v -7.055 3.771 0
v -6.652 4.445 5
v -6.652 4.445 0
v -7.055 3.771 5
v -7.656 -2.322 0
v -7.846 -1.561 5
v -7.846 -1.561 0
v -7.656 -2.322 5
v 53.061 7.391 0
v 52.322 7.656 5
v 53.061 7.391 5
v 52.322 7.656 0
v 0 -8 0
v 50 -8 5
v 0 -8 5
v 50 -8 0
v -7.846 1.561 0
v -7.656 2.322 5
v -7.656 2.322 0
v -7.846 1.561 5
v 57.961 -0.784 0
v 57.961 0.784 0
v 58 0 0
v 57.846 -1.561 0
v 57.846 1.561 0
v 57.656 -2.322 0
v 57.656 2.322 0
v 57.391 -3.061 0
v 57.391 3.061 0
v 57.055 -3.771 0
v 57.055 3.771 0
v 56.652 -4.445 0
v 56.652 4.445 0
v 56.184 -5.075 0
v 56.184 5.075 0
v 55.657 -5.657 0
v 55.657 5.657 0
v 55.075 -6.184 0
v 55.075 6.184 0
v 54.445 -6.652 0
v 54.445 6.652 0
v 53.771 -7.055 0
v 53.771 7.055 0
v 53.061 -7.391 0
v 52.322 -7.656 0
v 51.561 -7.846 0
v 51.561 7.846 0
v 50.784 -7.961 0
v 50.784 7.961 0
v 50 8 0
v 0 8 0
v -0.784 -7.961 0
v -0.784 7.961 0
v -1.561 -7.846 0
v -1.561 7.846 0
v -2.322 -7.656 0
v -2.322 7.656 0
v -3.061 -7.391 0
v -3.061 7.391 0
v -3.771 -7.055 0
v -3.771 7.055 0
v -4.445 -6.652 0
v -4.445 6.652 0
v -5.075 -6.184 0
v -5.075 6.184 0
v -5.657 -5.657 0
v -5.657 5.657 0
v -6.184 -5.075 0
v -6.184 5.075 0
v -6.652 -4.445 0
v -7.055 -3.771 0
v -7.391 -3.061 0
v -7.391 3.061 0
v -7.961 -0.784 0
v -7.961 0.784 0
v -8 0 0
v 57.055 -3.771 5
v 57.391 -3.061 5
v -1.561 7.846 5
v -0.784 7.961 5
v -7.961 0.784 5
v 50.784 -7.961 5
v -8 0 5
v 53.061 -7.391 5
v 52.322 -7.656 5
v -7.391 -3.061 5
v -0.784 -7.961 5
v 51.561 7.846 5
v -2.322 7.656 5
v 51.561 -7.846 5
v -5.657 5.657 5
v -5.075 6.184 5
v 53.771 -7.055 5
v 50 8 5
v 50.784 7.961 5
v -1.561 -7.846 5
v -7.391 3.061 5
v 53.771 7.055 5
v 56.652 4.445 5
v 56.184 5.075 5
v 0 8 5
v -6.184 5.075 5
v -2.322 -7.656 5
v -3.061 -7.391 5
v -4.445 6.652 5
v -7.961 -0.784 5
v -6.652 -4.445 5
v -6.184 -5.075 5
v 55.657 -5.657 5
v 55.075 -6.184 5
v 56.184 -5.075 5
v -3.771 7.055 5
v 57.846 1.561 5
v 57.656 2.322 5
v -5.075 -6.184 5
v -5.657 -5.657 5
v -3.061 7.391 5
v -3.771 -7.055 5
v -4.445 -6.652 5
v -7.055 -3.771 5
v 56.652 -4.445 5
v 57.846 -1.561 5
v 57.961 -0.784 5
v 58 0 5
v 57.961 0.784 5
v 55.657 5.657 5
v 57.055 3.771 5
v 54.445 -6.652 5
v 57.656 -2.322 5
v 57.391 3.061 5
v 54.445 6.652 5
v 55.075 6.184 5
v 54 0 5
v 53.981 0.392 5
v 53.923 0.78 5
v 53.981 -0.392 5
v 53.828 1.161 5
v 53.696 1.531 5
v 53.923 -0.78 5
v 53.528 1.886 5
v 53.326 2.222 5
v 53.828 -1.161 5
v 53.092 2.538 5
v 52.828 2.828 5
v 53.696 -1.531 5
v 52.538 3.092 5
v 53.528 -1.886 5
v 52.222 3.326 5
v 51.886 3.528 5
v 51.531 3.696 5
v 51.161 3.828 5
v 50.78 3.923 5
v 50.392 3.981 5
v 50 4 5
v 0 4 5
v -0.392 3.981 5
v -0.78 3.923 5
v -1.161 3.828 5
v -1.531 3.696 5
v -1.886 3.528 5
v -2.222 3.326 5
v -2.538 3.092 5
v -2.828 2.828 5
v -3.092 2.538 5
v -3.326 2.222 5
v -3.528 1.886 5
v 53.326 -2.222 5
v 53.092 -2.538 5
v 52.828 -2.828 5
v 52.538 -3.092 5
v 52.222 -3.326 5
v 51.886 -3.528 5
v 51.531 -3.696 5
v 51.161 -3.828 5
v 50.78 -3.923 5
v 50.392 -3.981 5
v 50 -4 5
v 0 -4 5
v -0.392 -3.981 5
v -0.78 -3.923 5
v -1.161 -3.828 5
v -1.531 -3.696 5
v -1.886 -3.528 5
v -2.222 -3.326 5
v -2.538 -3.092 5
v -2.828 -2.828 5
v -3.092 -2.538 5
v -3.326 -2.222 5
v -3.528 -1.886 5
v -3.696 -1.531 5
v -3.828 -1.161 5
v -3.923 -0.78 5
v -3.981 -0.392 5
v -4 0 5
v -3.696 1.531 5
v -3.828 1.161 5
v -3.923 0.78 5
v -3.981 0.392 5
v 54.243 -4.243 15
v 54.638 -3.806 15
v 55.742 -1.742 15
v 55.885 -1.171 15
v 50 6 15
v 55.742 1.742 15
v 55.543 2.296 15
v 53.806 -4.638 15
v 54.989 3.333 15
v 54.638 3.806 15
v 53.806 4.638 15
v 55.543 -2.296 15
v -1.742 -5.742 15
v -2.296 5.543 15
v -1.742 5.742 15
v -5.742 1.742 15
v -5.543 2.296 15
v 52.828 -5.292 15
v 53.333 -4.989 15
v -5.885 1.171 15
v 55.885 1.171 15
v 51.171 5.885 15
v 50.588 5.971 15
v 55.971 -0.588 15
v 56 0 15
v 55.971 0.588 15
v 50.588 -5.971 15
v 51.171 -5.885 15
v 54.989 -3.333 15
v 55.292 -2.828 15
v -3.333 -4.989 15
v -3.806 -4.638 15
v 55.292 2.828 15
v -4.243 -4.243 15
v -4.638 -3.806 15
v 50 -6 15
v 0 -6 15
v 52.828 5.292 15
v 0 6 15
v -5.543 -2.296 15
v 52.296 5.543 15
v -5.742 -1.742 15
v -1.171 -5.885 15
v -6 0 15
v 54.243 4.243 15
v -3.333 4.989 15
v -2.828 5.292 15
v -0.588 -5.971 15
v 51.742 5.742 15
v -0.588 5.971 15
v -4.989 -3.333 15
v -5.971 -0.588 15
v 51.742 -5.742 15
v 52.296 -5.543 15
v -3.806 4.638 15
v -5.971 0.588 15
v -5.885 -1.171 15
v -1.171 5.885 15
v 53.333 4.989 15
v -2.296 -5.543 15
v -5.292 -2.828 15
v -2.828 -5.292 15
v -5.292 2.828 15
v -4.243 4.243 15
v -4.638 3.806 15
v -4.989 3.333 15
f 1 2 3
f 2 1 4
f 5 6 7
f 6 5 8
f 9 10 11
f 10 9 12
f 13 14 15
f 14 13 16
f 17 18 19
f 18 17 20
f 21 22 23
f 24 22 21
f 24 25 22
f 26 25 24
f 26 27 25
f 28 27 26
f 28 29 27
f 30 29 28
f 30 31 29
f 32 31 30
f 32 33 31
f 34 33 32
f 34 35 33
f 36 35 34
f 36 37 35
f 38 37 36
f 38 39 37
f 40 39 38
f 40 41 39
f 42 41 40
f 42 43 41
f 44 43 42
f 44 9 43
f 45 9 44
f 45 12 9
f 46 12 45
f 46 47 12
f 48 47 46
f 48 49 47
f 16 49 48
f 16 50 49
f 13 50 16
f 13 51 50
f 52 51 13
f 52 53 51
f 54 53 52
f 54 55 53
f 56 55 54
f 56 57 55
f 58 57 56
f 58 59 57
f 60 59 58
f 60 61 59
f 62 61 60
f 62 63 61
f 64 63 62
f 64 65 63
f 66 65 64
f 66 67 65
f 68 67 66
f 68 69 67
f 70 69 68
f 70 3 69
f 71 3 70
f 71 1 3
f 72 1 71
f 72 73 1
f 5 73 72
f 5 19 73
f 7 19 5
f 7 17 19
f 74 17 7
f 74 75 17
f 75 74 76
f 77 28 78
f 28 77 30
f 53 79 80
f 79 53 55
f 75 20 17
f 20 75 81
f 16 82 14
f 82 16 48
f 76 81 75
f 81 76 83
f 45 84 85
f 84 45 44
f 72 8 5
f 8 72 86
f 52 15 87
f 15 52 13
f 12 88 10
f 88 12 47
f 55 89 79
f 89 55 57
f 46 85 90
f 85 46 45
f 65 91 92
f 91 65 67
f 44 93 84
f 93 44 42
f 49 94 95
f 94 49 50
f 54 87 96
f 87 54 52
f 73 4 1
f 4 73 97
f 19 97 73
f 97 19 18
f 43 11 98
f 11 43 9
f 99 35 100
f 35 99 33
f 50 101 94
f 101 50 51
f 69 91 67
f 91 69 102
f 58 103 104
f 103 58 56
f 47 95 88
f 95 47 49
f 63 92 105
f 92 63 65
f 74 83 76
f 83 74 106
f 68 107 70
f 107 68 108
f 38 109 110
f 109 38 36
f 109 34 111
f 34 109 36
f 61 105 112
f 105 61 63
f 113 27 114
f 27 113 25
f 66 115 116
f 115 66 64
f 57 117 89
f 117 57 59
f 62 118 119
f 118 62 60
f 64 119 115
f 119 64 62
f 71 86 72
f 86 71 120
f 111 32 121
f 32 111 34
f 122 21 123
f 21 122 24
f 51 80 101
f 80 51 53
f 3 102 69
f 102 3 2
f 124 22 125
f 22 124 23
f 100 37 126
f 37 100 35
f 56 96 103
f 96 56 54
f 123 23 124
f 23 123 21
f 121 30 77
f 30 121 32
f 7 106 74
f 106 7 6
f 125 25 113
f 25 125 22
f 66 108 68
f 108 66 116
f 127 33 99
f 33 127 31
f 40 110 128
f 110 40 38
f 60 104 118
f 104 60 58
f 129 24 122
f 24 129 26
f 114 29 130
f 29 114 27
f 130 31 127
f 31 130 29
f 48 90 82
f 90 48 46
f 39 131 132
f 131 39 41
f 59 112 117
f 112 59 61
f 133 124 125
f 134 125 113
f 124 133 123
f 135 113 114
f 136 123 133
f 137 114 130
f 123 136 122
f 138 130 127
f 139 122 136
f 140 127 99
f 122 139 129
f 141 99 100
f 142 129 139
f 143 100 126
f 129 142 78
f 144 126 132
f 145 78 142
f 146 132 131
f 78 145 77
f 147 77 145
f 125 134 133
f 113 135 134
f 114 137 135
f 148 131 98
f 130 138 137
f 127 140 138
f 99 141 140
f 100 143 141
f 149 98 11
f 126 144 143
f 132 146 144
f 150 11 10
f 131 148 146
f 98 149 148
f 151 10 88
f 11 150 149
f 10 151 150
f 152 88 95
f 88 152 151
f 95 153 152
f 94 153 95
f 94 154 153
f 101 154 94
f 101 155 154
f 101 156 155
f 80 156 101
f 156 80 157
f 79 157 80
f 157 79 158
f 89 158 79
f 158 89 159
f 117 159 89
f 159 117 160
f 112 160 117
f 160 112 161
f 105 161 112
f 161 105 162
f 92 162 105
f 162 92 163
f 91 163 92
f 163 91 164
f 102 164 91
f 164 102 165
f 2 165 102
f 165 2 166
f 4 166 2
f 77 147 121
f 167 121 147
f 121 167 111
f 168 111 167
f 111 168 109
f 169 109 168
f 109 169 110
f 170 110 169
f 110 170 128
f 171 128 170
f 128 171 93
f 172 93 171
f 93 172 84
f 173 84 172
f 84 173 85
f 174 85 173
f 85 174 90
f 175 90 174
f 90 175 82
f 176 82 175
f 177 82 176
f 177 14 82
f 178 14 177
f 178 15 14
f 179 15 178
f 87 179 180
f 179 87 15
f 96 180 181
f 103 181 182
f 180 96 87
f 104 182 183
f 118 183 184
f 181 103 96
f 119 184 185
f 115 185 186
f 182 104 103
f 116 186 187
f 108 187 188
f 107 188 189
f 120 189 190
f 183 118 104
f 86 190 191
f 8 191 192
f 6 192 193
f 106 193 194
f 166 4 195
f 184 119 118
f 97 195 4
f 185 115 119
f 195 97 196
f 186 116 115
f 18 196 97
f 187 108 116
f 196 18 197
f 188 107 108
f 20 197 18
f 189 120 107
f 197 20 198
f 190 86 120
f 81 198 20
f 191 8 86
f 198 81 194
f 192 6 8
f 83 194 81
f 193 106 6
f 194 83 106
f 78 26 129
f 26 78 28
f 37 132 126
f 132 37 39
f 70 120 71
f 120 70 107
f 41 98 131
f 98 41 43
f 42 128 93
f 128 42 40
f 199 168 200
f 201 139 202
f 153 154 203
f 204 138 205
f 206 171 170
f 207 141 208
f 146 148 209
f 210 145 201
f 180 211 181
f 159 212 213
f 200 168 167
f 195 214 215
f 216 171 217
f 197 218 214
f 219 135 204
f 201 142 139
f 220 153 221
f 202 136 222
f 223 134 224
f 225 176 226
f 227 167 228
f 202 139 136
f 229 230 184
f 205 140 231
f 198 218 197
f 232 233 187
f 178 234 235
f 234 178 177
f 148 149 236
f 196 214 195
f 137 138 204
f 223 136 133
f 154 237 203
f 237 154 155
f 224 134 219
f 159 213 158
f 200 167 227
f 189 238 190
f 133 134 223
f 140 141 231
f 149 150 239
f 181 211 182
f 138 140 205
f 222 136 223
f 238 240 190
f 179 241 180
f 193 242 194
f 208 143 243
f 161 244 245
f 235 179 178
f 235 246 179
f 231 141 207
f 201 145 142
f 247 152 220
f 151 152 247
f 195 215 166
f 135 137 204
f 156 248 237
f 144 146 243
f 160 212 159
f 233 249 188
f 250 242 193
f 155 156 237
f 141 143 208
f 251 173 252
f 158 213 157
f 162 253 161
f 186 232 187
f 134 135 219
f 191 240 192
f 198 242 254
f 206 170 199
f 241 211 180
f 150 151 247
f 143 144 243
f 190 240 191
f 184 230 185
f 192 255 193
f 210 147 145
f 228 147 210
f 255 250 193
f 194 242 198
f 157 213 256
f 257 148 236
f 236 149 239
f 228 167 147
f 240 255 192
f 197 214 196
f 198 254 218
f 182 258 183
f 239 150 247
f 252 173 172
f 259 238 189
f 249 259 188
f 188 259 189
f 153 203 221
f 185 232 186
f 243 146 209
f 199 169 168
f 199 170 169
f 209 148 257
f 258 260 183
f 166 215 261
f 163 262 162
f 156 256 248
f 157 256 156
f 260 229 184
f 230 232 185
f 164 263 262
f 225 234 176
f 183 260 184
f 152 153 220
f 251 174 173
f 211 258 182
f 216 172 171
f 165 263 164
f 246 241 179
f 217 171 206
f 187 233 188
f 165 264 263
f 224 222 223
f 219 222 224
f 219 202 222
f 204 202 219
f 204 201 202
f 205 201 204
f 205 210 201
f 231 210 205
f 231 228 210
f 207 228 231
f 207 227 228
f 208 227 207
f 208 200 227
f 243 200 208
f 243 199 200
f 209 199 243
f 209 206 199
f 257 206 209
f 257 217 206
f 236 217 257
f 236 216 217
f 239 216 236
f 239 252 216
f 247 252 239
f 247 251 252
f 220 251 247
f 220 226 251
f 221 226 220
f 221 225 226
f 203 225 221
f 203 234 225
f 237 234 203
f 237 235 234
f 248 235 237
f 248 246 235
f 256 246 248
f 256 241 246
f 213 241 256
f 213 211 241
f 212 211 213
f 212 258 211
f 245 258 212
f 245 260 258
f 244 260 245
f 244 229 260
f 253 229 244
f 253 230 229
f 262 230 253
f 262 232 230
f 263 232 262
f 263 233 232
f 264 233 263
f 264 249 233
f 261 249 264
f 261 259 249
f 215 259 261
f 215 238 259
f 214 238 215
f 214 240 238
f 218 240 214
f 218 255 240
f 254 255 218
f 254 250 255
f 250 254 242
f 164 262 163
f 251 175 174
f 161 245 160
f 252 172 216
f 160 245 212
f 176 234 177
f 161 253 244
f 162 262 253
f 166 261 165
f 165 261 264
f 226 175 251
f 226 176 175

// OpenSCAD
$fn = $preview ? 48 : 64;
// declare vars
fir_body_height=5;
fir_body_diameter=16;
sec_body_height=10;
sec_body_diameter=12;

hull() {
  cylinder(h=fir_body_height, d=fir_body_diameter);
  translate([50,0,0])
  cylinder(h=fir_body_height, d=fir_body_diameter);
  }

translate([0,0,fir_body_height])
hull() {
  cylinder(h=sec_body_height,d1=sec_body_diameter-4,d2=sec_body_diameter);
  translate([50,0,0])
  cylinder(h=sec_body_height,d1=sec_body_diameter-4,d2=sec_body_diameter);
  }
